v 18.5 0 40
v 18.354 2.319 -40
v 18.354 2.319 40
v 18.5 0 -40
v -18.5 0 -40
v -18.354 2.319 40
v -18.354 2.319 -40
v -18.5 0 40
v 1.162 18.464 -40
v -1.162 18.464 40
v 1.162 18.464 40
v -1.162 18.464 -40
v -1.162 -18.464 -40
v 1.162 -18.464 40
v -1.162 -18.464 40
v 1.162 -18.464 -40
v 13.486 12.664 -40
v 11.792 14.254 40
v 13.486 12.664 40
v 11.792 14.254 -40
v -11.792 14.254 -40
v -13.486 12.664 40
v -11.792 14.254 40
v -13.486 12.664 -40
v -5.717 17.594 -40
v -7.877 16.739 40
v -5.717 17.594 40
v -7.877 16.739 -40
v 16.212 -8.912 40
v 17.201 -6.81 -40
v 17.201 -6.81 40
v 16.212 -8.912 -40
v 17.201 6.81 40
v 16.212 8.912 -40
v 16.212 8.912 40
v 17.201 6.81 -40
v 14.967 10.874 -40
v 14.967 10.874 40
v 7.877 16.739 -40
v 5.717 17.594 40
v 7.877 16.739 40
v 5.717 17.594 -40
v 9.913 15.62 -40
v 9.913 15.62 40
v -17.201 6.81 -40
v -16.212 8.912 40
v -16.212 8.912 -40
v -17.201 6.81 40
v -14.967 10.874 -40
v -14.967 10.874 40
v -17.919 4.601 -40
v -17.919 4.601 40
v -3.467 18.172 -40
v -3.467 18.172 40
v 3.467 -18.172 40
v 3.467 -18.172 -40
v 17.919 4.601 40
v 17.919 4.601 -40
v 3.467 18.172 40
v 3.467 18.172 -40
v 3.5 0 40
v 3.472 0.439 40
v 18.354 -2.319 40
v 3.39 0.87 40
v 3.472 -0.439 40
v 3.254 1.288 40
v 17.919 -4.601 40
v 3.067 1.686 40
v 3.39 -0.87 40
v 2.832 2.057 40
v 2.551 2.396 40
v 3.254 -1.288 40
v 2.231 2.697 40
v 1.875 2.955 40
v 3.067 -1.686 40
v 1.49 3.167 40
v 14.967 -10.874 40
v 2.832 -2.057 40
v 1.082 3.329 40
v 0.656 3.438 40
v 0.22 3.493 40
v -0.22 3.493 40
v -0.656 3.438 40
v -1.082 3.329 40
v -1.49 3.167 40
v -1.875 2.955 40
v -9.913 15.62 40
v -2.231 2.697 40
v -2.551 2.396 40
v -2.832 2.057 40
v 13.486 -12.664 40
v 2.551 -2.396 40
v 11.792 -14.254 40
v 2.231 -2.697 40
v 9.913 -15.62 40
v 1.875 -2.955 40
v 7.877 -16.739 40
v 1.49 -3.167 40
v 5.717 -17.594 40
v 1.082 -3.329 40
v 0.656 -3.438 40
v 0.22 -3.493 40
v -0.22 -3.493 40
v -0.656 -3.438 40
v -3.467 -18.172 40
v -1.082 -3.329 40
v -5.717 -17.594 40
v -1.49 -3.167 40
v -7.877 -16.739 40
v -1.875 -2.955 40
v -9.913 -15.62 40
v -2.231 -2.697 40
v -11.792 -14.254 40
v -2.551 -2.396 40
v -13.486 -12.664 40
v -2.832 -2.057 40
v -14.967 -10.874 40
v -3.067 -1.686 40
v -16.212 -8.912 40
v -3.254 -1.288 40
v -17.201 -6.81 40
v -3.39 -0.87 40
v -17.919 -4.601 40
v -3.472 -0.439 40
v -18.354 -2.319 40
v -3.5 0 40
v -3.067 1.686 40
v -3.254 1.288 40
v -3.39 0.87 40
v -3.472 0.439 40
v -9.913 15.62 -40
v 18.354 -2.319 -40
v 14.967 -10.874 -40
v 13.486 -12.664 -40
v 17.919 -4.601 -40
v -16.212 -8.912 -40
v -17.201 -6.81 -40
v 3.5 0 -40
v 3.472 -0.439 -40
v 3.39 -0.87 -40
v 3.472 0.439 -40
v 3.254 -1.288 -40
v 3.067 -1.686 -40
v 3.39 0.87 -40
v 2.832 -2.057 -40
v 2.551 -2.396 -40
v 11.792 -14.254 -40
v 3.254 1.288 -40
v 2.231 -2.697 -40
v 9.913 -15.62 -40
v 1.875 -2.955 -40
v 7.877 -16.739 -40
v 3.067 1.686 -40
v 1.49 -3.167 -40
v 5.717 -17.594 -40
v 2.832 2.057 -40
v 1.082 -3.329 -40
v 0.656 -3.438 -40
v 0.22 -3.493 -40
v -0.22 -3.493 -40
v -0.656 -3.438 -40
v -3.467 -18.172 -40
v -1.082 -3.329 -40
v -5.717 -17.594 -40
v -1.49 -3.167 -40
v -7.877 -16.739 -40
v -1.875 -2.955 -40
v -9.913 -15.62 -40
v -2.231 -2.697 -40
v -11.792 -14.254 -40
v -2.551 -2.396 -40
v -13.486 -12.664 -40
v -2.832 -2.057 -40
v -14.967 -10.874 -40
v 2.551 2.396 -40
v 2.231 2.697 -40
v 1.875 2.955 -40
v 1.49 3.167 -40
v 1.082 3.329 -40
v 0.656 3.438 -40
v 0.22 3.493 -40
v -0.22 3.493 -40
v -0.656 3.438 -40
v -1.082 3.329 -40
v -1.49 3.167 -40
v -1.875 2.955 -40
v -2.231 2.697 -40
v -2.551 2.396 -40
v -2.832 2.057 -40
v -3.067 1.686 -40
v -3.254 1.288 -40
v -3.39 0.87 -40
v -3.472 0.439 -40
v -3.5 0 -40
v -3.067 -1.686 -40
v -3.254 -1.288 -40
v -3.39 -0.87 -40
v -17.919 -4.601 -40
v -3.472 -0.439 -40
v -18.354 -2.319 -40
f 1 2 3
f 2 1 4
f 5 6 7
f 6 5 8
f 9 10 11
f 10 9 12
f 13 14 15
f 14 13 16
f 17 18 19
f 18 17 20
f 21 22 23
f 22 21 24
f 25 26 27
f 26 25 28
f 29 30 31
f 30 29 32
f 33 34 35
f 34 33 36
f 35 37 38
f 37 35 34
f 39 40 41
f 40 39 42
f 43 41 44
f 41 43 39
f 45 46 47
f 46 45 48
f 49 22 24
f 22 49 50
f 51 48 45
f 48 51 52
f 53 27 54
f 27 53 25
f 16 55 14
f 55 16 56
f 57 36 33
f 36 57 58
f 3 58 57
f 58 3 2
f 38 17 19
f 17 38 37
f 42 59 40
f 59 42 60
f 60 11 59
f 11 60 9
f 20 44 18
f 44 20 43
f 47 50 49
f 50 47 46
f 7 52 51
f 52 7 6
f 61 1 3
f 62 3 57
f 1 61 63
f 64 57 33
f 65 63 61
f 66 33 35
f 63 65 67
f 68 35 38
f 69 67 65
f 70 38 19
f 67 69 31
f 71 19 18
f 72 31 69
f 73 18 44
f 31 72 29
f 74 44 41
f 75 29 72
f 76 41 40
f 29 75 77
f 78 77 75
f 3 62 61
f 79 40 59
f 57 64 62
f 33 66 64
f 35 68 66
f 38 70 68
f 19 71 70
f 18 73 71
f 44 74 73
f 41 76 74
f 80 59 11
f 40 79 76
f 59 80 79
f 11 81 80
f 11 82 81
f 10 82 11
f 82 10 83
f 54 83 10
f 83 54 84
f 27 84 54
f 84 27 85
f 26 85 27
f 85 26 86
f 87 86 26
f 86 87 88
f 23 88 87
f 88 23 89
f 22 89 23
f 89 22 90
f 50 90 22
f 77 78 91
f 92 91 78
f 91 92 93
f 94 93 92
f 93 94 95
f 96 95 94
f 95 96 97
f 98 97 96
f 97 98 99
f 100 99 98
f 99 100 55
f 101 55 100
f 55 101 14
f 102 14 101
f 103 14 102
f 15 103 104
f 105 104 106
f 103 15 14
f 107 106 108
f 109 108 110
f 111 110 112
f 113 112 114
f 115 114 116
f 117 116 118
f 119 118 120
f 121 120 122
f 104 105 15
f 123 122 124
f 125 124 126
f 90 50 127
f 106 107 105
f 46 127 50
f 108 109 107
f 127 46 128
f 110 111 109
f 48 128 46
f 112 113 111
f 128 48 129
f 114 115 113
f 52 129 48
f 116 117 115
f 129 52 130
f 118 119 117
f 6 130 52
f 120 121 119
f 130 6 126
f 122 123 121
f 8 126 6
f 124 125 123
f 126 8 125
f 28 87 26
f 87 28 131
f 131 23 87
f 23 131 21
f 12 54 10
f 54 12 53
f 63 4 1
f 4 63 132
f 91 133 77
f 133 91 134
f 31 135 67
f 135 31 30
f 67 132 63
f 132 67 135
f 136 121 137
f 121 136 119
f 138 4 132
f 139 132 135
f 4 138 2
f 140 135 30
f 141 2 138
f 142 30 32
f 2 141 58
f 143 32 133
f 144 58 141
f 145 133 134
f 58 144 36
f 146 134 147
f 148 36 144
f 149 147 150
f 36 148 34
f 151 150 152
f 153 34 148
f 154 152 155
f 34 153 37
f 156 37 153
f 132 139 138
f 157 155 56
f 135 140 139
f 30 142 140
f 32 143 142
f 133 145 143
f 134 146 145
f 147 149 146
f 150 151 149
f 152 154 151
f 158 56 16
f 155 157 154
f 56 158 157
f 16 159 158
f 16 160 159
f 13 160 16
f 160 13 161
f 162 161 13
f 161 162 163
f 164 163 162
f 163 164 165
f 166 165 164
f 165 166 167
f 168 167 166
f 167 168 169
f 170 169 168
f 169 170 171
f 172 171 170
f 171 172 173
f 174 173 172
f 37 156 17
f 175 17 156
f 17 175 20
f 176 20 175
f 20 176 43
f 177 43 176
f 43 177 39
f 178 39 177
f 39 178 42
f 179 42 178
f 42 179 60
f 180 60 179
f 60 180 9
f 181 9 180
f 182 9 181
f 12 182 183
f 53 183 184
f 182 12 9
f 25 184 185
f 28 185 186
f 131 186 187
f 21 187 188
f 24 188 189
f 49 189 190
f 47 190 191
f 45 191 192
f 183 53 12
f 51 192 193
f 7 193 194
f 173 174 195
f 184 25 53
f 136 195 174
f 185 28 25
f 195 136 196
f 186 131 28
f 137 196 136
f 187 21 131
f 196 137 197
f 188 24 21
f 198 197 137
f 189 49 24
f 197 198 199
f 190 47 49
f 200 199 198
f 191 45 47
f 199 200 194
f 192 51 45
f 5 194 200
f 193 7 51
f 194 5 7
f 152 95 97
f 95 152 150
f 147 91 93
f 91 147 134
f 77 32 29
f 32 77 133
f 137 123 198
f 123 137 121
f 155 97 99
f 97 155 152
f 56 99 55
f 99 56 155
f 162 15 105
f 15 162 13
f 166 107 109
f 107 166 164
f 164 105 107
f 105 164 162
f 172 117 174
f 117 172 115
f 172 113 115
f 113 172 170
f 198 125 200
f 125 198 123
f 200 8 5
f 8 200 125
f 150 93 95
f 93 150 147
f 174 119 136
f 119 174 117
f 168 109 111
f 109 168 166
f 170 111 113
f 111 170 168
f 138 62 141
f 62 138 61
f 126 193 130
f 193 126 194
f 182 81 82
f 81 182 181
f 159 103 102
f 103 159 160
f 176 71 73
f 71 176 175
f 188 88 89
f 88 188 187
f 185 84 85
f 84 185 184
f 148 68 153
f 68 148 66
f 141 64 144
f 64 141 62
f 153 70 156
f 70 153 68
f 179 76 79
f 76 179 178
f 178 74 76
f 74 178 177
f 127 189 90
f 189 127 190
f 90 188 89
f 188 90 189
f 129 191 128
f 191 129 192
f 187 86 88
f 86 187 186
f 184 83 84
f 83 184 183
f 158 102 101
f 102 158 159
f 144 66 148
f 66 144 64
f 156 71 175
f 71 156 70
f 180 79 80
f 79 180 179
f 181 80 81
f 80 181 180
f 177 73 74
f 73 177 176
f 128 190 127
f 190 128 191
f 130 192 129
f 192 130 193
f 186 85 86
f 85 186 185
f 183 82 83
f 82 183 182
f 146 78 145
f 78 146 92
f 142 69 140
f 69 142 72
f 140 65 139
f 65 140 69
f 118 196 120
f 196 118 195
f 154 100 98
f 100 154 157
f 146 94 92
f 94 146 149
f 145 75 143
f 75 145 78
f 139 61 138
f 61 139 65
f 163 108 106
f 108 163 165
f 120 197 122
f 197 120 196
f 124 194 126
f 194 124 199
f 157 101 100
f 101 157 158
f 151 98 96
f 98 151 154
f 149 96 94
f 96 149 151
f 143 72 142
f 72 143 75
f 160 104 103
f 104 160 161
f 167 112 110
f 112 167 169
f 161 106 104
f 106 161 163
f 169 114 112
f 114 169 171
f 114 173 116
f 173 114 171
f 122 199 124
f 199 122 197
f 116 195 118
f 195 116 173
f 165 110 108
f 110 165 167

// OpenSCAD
$fn = 50;


difference() {
	union() {
		translate(v = [0, 0, -40.0000000000]) {
			cylinder(h = 80, r = 18.5000000000);
		}
	}
	union() {
		translate(v = [0, 0, -100.0000000000]) {
			cylinder(h = 200, r = 3.5000000000);
		}
	}
}
